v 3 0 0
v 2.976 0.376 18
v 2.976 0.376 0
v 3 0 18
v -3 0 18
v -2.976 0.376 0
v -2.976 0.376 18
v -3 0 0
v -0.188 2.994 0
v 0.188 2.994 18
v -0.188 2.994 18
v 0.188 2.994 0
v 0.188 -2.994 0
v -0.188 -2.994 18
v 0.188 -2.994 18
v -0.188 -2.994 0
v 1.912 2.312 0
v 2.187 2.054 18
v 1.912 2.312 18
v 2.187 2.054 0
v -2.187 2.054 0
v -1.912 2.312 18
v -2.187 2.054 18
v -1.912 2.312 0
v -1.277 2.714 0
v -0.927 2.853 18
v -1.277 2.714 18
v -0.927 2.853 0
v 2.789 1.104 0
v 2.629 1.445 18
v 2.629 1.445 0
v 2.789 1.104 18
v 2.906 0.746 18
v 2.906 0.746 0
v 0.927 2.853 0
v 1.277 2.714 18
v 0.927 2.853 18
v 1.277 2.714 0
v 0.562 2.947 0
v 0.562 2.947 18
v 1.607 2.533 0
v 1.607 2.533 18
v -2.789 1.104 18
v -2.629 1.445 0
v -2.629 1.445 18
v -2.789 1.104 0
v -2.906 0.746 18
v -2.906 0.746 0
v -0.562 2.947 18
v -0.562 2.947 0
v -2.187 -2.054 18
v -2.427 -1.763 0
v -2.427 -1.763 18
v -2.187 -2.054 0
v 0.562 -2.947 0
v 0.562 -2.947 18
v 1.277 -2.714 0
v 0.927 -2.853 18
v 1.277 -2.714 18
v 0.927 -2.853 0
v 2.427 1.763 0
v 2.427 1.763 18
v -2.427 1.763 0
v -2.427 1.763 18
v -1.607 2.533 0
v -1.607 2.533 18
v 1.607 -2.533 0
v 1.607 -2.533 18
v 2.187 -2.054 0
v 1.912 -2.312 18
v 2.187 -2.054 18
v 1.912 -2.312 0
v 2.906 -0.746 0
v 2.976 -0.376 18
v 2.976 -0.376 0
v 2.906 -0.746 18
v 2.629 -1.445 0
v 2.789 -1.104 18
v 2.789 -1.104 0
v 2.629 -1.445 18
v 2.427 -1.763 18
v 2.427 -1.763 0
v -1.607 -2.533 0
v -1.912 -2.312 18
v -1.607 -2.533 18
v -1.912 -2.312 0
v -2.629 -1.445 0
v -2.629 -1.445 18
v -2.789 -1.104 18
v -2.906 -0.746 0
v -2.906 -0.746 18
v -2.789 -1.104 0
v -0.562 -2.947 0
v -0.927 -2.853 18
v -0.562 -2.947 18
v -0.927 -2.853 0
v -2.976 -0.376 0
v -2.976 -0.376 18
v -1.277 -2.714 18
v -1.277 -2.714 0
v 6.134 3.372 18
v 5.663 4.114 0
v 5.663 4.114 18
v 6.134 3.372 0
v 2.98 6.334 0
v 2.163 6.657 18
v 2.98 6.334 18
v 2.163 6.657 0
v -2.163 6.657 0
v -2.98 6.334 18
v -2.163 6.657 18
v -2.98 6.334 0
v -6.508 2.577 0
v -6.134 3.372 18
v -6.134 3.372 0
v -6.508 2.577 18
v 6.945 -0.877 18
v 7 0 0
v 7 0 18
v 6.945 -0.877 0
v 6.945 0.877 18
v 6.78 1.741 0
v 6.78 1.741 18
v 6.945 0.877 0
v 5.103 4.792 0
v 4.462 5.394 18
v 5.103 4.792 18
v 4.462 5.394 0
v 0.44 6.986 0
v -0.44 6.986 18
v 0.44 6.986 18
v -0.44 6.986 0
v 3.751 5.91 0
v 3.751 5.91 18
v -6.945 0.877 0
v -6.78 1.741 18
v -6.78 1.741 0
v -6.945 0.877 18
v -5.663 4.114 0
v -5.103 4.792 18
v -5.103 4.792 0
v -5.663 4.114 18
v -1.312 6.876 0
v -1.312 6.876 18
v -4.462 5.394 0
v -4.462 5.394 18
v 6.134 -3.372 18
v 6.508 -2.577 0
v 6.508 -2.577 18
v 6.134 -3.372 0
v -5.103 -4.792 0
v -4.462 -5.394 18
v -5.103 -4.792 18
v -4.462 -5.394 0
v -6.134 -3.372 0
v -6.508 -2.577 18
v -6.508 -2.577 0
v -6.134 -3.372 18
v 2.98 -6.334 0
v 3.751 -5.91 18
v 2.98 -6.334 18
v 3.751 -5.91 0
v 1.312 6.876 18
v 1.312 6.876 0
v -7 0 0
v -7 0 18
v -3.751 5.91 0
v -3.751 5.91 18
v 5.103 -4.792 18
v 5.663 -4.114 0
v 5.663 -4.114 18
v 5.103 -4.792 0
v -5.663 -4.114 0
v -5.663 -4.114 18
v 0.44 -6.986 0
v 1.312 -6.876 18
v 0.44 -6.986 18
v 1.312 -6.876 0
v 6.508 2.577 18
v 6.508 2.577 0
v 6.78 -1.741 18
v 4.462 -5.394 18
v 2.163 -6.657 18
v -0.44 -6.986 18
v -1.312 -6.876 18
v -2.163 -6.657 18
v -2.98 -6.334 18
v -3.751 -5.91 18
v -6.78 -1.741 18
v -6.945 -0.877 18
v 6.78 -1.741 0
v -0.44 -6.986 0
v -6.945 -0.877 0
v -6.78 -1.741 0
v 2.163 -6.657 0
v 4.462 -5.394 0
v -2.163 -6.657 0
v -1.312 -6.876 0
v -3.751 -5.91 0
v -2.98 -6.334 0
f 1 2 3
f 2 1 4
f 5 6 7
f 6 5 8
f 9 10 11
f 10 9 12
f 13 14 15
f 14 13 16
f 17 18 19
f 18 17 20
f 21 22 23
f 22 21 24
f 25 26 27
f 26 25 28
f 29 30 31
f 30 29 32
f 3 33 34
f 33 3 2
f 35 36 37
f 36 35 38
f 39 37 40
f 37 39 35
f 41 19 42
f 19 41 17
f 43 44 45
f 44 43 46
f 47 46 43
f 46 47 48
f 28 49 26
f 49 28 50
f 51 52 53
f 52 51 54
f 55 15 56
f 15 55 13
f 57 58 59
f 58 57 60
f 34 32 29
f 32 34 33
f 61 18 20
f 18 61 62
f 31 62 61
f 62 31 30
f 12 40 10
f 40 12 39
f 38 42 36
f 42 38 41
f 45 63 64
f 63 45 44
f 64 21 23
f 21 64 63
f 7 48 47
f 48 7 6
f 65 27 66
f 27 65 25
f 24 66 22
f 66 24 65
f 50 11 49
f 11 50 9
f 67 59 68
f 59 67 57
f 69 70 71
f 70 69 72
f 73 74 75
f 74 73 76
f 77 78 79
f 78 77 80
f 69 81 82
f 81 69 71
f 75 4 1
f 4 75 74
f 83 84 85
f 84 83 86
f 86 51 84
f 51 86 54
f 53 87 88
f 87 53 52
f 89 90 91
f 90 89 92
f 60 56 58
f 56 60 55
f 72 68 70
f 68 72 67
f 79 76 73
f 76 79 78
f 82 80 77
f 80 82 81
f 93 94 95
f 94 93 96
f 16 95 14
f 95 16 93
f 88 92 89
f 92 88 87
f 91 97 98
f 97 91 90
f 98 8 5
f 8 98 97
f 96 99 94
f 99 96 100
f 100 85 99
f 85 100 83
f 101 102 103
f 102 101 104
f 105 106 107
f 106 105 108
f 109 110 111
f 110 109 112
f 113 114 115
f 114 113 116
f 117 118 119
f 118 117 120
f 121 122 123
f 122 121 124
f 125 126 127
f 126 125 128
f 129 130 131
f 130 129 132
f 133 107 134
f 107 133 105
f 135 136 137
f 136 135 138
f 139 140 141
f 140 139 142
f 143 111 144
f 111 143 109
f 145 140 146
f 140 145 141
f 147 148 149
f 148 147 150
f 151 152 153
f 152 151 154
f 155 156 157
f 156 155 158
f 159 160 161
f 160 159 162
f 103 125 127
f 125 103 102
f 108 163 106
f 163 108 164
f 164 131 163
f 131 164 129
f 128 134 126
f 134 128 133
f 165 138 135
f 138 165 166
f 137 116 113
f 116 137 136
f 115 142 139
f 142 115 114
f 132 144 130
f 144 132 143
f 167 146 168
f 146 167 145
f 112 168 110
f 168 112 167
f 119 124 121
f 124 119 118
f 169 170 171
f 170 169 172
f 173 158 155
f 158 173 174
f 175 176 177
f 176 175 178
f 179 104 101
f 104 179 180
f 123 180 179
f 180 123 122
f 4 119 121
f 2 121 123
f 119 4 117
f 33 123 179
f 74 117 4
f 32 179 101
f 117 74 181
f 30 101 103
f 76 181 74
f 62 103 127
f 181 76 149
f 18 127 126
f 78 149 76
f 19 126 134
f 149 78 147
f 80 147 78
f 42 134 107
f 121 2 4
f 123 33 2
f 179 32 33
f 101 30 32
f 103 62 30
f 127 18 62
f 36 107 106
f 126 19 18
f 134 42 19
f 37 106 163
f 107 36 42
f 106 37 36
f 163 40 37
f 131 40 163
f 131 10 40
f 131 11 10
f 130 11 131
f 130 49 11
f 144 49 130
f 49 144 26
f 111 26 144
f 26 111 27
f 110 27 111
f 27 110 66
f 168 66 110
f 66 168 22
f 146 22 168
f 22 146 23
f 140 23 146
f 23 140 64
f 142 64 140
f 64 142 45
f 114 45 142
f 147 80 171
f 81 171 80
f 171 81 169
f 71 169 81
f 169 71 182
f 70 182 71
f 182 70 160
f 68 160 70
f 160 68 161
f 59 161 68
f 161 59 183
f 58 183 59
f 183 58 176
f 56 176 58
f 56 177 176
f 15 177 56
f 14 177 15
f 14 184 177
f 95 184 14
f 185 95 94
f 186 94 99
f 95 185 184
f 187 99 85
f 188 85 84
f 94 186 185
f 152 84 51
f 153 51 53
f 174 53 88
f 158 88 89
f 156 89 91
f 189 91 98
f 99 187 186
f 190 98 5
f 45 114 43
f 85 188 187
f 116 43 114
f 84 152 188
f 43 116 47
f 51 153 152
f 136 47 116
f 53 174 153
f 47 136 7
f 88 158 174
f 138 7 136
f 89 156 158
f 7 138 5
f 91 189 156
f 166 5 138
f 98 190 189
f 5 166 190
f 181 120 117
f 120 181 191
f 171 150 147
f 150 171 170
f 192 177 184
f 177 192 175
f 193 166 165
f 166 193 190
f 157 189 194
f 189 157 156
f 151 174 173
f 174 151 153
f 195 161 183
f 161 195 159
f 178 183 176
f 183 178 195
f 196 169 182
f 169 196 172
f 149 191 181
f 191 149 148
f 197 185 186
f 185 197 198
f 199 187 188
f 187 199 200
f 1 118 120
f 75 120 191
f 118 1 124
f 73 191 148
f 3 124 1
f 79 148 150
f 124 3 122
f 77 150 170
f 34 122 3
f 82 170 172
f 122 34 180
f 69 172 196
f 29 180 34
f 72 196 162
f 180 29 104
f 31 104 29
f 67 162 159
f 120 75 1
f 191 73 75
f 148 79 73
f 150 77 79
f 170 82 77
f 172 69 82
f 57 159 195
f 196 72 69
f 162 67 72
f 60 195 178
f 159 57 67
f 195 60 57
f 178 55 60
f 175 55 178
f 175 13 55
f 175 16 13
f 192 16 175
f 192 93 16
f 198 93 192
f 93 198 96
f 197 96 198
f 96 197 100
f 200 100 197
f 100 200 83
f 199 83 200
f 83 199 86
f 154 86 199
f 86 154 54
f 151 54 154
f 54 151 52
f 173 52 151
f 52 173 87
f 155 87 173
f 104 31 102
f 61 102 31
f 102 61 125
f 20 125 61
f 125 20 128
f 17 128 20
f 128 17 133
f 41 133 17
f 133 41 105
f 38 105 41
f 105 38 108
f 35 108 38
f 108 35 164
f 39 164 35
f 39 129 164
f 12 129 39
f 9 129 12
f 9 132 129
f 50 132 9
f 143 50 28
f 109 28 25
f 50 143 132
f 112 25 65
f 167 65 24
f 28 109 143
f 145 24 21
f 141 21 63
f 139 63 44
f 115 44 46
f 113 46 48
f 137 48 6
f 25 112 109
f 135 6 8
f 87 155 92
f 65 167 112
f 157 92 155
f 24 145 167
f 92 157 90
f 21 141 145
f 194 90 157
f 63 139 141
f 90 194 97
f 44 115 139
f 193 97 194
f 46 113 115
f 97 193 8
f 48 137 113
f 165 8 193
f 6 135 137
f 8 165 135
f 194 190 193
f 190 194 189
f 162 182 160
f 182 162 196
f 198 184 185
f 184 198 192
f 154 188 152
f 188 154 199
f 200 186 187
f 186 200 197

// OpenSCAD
$fn = 50;


difference() {
	union() {
		cylinder(h = 18, r = 7.0000000000);
	}
	union() {
		translate(v = [0, 0, -100]) {
			cylinder(h = 200, r = 3.0000000000);
		}
		translate(v = [0, 0, -100]) {
			cylinder(h = 200, r = 1.5000000000);
		}
	}
}
